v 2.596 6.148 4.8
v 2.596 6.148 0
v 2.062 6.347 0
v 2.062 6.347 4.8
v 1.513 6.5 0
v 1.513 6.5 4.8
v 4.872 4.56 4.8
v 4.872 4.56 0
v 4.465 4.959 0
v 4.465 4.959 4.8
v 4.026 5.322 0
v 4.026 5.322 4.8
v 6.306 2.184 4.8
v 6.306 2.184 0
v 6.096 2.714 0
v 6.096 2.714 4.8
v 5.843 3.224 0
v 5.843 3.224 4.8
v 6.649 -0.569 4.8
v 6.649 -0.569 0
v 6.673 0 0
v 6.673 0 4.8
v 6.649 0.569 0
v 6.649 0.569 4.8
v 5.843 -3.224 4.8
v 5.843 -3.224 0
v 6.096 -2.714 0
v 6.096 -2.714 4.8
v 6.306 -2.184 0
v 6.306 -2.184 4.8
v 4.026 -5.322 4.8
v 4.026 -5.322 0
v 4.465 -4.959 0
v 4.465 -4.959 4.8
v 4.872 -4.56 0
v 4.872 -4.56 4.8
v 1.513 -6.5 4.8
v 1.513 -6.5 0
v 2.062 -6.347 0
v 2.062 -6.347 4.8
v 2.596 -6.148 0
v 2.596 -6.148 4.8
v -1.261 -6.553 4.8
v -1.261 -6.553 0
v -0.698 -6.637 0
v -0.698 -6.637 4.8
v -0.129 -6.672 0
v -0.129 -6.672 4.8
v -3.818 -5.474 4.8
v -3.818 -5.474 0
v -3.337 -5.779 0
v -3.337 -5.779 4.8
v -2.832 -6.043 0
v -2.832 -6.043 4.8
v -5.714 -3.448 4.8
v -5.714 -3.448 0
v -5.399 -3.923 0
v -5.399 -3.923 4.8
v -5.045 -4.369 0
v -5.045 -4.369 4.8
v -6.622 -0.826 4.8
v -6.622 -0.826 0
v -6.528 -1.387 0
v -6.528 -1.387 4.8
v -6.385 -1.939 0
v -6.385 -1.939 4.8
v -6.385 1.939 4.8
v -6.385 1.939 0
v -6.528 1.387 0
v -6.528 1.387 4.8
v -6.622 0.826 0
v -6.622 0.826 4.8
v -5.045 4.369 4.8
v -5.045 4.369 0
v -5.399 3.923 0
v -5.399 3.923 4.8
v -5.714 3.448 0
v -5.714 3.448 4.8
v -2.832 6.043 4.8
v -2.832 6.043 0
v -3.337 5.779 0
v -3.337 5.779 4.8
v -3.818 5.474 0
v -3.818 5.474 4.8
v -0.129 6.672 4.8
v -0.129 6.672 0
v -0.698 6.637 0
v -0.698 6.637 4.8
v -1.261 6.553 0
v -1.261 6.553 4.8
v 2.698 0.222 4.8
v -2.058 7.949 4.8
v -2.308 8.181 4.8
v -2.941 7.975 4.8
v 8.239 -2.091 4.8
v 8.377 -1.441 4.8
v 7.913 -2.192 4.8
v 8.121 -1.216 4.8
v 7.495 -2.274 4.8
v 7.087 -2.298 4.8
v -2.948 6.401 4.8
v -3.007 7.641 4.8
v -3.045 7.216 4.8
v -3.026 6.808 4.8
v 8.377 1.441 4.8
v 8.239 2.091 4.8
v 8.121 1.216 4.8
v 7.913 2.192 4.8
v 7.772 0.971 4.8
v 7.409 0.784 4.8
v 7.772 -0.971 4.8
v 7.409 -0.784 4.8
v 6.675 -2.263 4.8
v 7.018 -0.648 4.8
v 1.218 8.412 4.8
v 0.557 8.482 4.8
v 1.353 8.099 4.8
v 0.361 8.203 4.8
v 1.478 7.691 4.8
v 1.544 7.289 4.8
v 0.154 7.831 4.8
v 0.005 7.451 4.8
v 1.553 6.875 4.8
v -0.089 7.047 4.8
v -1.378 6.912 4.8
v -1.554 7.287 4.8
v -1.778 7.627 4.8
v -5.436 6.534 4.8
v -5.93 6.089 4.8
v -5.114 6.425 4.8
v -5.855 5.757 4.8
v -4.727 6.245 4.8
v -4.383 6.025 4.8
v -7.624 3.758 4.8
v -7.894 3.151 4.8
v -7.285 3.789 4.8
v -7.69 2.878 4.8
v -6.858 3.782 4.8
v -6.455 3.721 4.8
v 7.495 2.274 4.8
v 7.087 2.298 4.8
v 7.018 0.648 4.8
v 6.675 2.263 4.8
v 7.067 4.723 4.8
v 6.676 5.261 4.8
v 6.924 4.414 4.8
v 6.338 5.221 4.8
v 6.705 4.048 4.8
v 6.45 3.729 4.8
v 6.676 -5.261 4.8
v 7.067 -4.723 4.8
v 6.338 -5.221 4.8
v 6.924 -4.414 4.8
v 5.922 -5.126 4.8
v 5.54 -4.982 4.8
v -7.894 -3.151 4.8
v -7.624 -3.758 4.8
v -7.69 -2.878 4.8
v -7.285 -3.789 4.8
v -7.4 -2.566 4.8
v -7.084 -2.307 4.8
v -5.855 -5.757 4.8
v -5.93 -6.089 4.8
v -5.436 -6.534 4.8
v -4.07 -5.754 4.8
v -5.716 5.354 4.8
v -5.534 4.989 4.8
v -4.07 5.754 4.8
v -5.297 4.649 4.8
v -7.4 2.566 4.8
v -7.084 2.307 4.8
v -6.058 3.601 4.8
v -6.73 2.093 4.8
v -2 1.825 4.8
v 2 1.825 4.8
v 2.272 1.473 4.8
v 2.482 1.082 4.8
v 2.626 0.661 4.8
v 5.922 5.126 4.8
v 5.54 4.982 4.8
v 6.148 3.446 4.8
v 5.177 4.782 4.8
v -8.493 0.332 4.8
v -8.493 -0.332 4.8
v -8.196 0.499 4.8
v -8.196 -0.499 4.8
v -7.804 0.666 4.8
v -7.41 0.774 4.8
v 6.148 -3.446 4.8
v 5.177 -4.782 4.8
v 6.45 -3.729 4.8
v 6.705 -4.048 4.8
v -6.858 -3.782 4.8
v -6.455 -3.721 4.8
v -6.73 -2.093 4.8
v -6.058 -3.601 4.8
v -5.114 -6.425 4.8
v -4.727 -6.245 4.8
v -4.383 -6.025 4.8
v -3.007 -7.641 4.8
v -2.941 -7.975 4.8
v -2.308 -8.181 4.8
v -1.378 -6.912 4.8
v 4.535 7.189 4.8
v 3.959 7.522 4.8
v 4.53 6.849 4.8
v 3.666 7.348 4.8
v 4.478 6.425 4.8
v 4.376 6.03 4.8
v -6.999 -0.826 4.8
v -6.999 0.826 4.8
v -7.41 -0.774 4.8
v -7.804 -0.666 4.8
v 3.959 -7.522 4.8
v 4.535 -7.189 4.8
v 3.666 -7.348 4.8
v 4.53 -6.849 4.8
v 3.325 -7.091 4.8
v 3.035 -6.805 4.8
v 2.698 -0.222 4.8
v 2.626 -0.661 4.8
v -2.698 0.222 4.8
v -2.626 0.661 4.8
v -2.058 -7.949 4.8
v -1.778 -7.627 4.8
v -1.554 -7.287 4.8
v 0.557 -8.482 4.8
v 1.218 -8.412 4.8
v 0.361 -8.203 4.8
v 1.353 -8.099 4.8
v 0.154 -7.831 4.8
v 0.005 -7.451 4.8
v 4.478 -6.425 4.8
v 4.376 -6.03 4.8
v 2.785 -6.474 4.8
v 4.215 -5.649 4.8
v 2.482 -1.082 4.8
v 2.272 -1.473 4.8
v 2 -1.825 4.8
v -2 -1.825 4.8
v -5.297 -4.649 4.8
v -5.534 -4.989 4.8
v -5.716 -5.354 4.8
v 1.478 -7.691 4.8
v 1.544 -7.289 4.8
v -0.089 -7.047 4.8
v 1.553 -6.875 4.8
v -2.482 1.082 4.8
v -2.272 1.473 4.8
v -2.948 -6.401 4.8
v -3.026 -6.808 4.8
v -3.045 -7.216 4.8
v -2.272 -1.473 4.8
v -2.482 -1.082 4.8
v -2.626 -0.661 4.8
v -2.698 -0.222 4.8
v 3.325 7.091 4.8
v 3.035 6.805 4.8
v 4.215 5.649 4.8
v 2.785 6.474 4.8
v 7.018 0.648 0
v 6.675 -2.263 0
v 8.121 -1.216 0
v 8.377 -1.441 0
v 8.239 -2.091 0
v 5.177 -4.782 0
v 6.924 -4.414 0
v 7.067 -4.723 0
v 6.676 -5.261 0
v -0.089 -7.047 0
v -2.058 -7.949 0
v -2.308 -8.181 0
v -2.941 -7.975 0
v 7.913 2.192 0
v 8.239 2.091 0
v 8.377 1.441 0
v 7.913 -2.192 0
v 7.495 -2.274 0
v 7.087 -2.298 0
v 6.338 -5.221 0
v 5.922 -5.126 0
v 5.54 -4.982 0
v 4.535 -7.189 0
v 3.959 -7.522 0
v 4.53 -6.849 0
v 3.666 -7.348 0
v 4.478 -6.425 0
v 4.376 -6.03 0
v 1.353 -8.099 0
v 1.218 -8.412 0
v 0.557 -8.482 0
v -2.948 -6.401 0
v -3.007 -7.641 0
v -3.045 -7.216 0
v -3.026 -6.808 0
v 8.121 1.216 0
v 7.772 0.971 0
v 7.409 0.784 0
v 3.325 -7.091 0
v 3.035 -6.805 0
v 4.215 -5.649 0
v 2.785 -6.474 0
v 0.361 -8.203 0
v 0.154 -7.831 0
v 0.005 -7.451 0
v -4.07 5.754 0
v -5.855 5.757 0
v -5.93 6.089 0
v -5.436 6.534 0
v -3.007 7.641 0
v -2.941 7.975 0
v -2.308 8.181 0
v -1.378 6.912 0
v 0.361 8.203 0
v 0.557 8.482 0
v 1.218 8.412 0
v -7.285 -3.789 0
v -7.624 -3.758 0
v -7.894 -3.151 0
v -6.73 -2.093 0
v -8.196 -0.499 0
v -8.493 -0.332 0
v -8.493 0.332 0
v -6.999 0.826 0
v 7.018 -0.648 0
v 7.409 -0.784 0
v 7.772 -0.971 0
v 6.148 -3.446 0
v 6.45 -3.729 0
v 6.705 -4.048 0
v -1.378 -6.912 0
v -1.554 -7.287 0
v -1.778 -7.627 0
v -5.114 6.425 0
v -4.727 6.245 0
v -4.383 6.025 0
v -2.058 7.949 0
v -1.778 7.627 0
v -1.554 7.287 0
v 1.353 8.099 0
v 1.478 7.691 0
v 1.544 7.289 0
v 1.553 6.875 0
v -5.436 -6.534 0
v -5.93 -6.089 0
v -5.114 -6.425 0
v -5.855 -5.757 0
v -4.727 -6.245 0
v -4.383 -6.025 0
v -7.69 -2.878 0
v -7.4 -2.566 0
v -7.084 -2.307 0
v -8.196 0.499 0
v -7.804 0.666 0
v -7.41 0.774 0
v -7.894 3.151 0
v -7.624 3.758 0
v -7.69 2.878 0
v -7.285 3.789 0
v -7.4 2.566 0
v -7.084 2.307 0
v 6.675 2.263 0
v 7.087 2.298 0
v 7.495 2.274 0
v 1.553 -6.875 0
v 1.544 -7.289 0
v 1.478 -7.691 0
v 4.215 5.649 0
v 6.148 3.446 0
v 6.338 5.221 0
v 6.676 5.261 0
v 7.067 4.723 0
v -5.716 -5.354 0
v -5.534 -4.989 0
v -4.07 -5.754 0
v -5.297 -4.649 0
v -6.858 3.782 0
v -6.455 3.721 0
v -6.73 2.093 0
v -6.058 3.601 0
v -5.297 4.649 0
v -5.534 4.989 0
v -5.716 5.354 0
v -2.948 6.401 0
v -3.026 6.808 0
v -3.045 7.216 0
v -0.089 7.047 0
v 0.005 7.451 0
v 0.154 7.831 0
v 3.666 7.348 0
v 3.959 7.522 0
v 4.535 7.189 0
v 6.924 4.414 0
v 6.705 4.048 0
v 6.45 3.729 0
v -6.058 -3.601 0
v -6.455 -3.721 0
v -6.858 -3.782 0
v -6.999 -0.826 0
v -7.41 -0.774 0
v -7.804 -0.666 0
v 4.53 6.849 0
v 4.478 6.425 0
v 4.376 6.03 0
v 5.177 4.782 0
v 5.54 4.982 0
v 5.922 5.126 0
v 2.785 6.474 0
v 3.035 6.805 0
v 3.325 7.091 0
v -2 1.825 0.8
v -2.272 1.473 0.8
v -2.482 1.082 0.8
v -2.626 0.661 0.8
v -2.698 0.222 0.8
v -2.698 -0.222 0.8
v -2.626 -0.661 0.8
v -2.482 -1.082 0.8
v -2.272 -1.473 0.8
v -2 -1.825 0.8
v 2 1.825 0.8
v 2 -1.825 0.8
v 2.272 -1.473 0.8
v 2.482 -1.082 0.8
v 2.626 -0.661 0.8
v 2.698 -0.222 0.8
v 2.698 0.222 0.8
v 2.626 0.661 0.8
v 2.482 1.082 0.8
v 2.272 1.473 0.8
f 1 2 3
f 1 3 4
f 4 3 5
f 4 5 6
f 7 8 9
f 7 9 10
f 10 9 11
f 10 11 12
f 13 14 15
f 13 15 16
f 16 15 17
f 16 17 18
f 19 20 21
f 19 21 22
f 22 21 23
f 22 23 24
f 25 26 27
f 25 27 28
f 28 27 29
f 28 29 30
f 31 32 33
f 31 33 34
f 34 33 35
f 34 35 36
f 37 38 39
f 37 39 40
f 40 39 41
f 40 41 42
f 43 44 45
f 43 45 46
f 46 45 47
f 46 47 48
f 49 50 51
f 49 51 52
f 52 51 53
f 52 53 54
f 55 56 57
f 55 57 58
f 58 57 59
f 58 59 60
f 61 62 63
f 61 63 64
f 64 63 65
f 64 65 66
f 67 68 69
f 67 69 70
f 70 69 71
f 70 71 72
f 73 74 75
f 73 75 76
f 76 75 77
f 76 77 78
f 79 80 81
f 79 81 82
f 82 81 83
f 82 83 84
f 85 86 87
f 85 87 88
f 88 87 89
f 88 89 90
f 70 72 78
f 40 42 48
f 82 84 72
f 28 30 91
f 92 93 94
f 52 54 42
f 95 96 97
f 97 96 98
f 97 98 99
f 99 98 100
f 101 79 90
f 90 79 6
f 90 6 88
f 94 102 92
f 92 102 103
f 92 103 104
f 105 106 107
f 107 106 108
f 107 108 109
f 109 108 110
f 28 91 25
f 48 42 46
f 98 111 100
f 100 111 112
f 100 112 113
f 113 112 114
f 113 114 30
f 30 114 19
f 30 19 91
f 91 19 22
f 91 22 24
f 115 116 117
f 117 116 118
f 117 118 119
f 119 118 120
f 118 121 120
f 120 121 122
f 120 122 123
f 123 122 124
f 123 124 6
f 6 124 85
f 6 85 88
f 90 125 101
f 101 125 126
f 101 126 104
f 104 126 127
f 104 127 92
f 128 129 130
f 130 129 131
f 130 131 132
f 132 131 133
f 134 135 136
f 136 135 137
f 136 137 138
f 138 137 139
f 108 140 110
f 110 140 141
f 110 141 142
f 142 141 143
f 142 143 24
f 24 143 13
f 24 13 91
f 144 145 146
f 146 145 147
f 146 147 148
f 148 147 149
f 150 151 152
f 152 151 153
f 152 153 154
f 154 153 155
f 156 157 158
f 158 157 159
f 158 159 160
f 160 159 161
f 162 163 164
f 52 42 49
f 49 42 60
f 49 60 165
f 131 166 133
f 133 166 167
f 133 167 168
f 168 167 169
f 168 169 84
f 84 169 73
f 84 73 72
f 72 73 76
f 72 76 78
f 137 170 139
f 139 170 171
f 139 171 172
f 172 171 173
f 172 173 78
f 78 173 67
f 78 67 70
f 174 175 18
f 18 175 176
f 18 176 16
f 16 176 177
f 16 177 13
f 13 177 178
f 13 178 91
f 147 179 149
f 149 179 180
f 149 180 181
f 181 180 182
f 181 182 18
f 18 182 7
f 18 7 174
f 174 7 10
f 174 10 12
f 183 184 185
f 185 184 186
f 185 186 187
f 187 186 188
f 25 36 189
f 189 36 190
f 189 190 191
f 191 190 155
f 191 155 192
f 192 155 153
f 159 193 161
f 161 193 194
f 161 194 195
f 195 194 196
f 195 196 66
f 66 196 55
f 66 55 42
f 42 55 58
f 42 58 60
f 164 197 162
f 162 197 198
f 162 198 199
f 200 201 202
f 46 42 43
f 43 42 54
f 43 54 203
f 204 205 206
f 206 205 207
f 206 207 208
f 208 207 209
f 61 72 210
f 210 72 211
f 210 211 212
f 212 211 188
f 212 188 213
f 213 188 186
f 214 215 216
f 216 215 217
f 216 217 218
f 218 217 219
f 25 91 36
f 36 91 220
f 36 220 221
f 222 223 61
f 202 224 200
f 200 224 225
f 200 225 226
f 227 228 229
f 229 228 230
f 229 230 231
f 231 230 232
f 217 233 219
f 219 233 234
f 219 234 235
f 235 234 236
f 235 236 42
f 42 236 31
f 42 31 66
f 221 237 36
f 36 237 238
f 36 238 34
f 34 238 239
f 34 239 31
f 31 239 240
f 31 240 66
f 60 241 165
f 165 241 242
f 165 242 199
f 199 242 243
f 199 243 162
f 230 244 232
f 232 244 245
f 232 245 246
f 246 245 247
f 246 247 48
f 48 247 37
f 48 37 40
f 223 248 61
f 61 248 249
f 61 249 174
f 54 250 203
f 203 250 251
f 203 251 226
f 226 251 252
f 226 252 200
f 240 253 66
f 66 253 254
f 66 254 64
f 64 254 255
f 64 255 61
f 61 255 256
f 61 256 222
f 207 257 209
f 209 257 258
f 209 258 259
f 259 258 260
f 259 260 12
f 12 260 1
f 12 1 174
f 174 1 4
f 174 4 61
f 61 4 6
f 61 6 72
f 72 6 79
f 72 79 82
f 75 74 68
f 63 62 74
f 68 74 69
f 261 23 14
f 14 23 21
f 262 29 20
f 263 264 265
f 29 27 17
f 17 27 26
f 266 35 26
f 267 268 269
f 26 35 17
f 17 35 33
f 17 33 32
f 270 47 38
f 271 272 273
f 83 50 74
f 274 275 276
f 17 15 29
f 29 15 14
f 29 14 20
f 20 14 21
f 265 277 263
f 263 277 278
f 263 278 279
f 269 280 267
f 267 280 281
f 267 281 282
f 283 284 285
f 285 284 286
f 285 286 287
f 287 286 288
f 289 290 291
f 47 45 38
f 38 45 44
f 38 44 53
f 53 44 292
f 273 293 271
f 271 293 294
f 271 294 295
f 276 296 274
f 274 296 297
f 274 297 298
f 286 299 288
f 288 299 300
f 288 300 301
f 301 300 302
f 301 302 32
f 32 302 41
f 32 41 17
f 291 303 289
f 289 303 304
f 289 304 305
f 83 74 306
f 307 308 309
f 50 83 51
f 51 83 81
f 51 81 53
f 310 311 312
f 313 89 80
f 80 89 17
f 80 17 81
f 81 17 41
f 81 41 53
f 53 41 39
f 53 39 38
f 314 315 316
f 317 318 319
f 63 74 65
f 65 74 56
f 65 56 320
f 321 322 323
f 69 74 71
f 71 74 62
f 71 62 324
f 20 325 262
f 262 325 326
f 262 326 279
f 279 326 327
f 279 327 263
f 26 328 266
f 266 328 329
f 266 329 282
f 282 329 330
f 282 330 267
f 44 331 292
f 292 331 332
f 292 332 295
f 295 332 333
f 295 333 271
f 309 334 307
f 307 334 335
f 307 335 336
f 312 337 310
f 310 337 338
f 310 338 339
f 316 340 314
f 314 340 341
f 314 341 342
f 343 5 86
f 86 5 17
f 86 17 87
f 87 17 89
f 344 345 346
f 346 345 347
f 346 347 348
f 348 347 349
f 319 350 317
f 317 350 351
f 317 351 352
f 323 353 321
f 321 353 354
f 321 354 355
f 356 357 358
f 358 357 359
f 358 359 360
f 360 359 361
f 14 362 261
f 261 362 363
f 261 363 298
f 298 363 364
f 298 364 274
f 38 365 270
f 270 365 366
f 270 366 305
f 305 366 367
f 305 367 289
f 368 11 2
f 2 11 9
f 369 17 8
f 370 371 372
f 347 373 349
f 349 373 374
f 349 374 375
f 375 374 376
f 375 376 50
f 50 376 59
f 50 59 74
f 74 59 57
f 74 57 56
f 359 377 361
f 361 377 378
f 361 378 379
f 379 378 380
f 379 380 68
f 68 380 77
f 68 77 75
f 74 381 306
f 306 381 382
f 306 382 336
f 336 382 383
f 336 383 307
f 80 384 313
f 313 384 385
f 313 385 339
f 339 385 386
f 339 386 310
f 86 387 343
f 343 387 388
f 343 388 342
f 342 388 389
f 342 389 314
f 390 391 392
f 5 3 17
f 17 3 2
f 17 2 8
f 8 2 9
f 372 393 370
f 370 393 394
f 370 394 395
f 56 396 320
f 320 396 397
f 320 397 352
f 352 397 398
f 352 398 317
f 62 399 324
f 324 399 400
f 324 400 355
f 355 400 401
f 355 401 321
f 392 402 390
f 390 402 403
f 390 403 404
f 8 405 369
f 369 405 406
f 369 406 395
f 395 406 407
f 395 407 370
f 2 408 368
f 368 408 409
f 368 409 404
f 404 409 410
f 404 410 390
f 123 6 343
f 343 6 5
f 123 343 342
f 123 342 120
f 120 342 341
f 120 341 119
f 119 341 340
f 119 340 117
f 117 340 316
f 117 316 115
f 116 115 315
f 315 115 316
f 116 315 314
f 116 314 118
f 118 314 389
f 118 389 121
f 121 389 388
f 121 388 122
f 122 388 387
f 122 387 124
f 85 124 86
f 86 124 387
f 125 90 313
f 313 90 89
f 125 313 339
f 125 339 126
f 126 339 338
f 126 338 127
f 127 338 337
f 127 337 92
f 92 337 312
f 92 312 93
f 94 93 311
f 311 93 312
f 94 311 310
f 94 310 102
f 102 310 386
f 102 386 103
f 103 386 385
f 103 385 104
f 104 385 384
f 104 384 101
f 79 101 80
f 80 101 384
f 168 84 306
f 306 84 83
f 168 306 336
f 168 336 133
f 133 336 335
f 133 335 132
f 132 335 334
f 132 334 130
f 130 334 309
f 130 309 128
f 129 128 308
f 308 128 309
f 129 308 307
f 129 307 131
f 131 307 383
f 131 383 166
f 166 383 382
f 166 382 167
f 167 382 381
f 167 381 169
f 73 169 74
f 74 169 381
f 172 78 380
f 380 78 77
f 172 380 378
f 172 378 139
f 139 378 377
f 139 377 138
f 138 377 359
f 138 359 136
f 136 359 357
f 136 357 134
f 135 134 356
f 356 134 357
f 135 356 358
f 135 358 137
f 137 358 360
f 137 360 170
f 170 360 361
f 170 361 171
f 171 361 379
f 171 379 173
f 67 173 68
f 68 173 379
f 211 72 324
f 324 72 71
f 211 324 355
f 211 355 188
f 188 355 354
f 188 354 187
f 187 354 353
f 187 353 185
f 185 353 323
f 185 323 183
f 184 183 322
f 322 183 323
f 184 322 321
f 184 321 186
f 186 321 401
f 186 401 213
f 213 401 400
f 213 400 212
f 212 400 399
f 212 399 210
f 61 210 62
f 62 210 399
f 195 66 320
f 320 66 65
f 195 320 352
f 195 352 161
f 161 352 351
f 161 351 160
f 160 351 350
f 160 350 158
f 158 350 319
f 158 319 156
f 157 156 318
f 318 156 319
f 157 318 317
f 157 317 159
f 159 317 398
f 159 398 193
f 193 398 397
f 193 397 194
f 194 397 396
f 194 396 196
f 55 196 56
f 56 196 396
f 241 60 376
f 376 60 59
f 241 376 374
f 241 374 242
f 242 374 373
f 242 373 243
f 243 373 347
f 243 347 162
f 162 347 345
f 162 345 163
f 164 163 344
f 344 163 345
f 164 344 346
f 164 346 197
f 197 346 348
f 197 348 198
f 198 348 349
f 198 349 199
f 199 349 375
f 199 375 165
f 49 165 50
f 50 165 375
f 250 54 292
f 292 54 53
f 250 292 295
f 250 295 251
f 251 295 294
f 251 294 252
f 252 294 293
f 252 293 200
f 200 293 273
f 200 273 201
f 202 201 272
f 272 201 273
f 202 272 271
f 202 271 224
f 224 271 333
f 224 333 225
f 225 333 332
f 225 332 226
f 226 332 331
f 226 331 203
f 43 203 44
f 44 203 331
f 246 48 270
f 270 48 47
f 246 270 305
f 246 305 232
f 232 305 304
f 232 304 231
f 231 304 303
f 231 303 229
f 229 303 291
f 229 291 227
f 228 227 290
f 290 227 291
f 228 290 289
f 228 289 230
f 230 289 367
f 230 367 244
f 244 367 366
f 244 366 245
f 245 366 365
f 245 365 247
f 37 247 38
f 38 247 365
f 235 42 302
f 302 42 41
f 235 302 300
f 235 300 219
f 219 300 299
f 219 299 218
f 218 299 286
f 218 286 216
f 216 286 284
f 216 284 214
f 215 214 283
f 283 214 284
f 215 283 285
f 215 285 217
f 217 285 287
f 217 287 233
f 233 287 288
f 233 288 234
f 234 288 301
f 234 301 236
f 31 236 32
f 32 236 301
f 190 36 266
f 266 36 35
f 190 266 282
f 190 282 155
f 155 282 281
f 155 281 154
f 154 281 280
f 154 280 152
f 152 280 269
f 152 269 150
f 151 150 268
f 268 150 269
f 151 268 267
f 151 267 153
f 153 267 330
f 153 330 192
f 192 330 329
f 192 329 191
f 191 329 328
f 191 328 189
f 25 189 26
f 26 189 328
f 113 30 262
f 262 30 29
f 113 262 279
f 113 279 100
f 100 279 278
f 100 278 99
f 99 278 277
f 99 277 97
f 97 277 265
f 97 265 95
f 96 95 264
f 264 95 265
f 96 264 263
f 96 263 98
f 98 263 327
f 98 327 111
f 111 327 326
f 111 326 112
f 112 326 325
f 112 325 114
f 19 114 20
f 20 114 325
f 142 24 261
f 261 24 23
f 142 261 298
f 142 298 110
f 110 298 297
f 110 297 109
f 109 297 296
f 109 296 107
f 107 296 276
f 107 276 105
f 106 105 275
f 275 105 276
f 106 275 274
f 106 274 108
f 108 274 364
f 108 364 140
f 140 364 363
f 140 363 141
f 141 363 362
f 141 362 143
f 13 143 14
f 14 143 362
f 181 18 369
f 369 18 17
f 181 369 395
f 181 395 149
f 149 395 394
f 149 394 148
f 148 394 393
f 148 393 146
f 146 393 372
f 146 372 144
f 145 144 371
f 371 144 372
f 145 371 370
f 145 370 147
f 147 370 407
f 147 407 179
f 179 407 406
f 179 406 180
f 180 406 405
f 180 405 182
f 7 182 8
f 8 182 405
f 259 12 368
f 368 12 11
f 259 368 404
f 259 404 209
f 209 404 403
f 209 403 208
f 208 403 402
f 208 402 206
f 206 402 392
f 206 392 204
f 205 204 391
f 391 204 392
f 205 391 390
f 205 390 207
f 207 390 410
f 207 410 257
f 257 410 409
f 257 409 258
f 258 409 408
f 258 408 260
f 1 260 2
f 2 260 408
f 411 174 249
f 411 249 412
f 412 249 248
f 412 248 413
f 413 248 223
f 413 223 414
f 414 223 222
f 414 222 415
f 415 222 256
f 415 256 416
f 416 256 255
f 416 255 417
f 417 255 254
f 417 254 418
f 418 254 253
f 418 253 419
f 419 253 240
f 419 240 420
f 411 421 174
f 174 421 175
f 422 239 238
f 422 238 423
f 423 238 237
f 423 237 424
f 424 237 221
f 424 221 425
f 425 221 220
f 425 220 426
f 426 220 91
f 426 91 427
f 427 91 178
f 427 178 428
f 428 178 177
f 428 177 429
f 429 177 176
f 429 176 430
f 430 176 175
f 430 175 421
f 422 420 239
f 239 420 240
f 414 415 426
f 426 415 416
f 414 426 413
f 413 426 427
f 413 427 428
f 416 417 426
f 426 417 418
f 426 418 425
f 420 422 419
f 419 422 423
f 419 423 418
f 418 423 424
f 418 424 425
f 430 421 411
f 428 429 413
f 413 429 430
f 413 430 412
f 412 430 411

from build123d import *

# Parameters (mm, degrees)
SKETCH12_R         = 6.673371428
CORE_CYL_DEPTH     = 4.8
TOOTH_EX_DEPTH     = 4.8
CIRPATTERN1_COUNT  = 15
SKETCH13_W         = 4
SKETCH13_H         = 3.65
CUT_EXTRUDE1_DEPTH = 4


with BuildPart() as part:
    # Sketch12 → core_cyl (new body)
    with BuildSketch(Plane.XY):
        Circle(SKETCH12_R)
    extrude(amount=CORE_CYL_DEPTH)

    # tooth → tooth_ex (add)
    with BuildSketch(Plane.XY):
        with BuildLine():
            add(Edge.make_bspline(
                [(-0.089470773, 7.047126715), (-0.005108471, 7.588530401), (0.233889853, 8.063511638), (0.55714541, 8.481720874)],
                knots=[0, 0, 0, 0, 0.44996315, 0.44996315, 0.44996315, 0.44996315], degree=3))
            Line((-0.089470773, 7.047126715), (-0.128884861, 6.672126715))
            ThreePointArc((-0.128884861, 6.672126715), (0.69755726, 6.636814001), (1.513281564, 6.499528069))
            Line((1.513281564, 6.499528069), (1.552695653, 6.874528069))
            add(Edge.make_bspline(
                [(1.552695653, 6.874528069), (1.582741025, 7.421640695), (1.44771954, 7.935932997), (1.218478482, 8.412211968)],
                knots=[0, 0, 0, 0, 0.44996315, 0.44996315, 0.44996315, 0.44996315], degree=3))
            ThreePointArc((1.218478482, 8.412211968), (0.888491938, 8.453436111), (0.55714541, 8.481720874))
        make_face()
    tooth_ex = extrude(amount=TOOTH_EX_DEPTH)

    # CirPattern1: tooth_ex ×15 about axis
    cirpattern1_axis = Axis((0, 0, 0), (0, 0, 1))
    for i in range(1, CIRPATTERN1_COUNT):
        add(tooth_ex.rotate(cirpattern1_axis, i * 360 / CIRPATTERN1_COUNT))

    # Sketch13 → Cut-Extrude1 (cut)
    with BuildSketch(Plane.XY.offset(4.8)):
        with BuildLine():
            Line((-2, -1.825), (-2, 1.825))
            ThreePointArc((-2, 1.825), (-2.707512696, 0), (-2, -1.825))
        make_face()
        Rectangle(SKETCH13_W, SKETCH13_H)
        with BuildLine():
            ThreePointArc((2.707512696, 0), (2.524445523, 0.97867247), (2, 1.825))
            Line((2, 1.825), (2, -1.825))
            ThreePointArc((2, -1.825), (2.524445523, -0.97867247), (2.707512696, 0))
        make_face()
    extrude(amount=-CUT_EXTRUDE1_DEPTH, mode=Mode.SUBTRACT)


solid = part.part
